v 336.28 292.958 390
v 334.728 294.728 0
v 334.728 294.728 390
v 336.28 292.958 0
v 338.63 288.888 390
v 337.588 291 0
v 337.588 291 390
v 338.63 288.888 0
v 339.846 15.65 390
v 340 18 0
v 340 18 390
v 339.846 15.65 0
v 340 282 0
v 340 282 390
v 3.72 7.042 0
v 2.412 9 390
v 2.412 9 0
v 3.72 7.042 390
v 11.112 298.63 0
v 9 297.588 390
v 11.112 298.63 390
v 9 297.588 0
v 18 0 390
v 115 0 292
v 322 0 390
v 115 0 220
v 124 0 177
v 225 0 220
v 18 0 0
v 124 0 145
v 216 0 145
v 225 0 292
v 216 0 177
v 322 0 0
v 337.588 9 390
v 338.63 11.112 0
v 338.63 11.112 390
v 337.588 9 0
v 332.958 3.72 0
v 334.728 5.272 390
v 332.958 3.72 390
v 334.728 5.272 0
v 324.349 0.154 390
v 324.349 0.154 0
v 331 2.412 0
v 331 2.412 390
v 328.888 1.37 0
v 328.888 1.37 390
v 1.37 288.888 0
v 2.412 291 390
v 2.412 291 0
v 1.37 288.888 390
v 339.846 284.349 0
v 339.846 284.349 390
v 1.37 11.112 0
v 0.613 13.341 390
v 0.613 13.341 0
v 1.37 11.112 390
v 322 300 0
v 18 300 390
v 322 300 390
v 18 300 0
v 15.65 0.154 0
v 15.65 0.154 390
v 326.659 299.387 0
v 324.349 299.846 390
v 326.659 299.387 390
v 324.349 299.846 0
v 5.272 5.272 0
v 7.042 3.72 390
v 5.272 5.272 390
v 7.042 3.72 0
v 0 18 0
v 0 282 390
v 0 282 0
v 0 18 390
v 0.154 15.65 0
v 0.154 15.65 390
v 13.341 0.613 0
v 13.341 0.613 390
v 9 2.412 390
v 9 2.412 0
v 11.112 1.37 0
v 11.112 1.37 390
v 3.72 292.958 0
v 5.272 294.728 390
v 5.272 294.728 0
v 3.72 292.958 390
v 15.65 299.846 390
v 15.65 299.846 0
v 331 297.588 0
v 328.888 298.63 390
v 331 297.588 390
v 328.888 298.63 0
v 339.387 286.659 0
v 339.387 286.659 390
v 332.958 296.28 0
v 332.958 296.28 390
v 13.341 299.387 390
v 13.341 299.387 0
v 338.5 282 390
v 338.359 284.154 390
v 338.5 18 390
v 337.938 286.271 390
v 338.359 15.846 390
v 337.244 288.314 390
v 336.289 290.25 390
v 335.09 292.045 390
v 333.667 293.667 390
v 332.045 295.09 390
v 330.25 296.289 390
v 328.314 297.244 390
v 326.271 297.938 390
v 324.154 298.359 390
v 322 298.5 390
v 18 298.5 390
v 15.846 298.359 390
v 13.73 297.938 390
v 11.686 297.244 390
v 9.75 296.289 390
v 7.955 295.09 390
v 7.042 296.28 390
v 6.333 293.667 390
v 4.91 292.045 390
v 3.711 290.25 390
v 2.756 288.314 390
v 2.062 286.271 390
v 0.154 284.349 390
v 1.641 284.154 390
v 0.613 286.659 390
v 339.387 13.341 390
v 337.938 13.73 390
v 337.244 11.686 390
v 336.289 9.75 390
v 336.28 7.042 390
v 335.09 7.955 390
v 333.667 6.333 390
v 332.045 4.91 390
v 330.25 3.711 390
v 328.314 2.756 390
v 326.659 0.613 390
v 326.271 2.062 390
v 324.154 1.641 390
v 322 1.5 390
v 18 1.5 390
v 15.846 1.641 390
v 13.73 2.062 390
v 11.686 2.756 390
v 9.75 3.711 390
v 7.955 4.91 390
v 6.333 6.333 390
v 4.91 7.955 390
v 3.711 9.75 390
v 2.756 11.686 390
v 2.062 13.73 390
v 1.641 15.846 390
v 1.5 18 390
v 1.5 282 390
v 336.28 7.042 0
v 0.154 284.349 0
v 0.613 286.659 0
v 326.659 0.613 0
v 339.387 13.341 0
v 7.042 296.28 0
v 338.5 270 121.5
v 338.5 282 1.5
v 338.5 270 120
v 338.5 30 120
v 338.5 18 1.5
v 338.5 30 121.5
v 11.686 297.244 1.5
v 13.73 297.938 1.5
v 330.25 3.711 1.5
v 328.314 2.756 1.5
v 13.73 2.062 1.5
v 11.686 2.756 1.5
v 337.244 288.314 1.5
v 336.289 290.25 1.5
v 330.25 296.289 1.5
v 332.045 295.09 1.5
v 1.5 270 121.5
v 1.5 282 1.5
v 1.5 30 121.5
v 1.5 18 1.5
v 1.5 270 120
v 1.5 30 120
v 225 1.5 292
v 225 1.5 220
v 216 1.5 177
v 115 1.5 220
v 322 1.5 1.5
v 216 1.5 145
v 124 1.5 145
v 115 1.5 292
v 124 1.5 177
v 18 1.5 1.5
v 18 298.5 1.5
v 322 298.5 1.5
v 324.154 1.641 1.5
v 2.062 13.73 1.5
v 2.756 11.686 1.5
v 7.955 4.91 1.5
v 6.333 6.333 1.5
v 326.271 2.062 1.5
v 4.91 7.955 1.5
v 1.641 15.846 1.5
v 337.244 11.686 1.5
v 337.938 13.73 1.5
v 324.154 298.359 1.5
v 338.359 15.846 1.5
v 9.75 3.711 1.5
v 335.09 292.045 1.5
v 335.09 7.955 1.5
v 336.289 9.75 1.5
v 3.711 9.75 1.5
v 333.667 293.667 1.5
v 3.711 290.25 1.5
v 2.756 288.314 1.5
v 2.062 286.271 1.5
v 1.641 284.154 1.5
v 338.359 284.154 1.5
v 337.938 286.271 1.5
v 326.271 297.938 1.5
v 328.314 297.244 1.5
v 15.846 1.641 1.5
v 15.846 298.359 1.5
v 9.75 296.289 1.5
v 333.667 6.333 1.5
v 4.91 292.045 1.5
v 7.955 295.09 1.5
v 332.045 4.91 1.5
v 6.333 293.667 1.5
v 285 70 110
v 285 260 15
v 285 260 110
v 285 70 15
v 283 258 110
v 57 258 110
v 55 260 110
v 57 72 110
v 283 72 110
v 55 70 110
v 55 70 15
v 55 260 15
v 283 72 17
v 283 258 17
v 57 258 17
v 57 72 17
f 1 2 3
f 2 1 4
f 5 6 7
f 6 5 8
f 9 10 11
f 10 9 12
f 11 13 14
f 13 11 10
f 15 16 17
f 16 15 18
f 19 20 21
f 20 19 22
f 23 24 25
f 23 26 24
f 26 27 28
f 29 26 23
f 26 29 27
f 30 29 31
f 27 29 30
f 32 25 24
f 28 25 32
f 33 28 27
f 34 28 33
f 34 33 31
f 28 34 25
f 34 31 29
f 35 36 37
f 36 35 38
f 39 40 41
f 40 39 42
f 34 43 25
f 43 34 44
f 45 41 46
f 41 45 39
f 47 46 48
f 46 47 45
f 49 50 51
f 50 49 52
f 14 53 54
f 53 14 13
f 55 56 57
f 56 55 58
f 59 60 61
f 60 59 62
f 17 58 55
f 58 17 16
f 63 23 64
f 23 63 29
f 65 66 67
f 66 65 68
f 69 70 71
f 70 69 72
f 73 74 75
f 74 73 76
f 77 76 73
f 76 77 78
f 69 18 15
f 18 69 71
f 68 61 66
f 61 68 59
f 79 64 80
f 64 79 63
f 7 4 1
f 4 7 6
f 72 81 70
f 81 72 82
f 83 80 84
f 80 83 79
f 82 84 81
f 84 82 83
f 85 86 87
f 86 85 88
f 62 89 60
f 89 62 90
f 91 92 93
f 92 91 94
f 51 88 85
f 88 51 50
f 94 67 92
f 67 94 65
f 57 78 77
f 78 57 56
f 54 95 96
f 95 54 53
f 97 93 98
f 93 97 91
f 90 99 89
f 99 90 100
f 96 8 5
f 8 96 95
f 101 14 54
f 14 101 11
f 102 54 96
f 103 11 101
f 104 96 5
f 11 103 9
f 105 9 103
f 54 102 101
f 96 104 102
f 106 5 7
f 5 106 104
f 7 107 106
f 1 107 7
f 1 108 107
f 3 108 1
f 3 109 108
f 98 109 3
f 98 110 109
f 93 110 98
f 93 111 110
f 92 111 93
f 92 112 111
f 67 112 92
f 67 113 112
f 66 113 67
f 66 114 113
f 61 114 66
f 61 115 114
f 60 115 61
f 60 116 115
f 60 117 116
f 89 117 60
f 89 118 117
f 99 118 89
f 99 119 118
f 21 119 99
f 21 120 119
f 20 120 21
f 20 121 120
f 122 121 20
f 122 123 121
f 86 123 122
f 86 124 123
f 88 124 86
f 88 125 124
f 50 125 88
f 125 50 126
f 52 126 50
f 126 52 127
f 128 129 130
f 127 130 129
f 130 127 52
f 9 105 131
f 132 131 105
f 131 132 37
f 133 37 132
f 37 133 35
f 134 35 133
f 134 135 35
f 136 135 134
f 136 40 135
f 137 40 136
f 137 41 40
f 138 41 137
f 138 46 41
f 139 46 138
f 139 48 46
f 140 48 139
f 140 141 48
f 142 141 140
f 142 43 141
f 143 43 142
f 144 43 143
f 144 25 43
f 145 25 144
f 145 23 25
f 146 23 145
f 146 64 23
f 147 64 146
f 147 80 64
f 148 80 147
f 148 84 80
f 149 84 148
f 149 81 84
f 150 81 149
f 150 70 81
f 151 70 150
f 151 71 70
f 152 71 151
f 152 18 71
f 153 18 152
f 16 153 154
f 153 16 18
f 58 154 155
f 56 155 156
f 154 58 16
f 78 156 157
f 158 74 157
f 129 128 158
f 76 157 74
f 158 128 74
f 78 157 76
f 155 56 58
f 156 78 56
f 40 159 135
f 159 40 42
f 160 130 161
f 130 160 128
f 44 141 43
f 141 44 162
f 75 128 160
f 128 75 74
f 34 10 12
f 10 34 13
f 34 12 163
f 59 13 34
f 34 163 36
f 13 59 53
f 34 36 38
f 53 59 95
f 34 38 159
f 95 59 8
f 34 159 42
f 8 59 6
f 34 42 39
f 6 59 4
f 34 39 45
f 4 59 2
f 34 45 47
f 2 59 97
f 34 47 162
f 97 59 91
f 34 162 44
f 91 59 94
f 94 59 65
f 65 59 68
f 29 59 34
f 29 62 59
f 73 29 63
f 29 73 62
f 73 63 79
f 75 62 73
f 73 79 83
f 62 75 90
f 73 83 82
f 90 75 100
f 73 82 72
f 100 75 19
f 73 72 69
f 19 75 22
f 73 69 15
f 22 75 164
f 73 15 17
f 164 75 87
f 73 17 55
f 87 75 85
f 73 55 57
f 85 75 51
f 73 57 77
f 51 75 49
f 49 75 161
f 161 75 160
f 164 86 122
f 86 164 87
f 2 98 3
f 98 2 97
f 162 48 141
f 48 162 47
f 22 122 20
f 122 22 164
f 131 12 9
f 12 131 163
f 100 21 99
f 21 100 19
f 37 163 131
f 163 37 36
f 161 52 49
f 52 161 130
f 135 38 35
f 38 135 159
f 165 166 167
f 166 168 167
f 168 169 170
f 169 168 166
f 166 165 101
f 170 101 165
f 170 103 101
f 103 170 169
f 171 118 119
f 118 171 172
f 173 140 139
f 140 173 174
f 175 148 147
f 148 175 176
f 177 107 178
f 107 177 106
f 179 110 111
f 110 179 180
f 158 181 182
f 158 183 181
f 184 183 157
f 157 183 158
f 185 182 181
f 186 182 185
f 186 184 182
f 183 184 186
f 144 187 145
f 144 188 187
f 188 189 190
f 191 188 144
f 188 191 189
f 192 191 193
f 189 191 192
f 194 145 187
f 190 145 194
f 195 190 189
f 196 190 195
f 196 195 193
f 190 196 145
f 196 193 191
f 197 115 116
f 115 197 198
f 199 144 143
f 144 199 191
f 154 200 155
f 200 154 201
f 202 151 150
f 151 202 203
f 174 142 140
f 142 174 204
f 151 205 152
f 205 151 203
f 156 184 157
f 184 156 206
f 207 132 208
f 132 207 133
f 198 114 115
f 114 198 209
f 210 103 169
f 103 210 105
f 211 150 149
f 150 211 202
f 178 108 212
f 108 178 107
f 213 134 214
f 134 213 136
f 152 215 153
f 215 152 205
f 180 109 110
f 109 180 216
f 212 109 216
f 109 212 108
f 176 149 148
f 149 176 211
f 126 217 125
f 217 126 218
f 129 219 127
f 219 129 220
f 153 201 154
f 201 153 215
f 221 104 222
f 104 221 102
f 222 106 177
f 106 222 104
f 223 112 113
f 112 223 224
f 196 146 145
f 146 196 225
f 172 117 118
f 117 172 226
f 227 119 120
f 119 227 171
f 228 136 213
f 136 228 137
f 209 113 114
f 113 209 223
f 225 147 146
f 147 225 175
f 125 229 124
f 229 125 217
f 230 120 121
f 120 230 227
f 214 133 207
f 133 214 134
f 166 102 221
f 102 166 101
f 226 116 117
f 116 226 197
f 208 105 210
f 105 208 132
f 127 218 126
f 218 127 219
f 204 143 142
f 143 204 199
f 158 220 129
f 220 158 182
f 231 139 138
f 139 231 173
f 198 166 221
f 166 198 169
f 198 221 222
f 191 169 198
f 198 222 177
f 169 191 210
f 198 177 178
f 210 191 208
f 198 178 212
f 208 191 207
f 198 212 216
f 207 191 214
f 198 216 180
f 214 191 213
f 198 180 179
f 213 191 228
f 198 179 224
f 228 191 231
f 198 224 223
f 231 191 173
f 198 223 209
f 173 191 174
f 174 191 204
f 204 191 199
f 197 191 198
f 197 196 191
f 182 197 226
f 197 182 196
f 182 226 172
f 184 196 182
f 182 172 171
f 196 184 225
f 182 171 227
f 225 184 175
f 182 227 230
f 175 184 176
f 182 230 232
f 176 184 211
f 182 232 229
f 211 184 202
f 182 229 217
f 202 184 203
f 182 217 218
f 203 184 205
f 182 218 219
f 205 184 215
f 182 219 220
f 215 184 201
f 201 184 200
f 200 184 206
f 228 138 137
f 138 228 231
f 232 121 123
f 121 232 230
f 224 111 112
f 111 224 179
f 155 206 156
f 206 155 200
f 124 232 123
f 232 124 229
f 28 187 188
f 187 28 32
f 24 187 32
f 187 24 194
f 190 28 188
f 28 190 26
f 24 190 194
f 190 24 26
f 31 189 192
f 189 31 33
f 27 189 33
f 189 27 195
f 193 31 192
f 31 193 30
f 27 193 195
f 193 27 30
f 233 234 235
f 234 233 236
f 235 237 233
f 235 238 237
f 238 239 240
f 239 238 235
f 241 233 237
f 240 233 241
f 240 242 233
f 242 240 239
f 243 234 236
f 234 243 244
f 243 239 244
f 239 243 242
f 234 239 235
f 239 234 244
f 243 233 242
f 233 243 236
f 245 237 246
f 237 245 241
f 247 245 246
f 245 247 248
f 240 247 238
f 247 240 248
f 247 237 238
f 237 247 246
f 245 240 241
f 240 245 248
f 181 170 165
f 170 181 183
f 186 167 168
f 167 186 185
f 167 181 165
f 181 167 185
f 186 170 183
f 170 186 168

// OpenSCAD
// PrintQuran v0.2 REFERENCE fit-study model — NOT tooling ready.
// Units: mm
$fn=48;
W=340; D=300; H=390; wall=1.5; corner=18;
slot_w=145; slot_h=10;
display_w=110; display_h=72;
printer_w=92; printer_h=32;

module rounded_box(w,d,h,r){
  hull(){ for(x=[r,w-r]) for(y=[r,d-r]) translate([x,y,0]) cylinder(h=h,r=r); }
}
module shell(){
 difference(){
  rounded_box(W,D,H,corner);
  translate([wall,wall,wall]) rounded_box(W-2*wall,D-2*wall,H-wall,corner-wall);
  // front display opening
  translate([(W-display_w)/2,-1,220]) cube([display_w,wall+3,display_h]);
  // printer exit
  translate([(W-printer_w)/2,-1,145]) cube([printer_w,wall+3,printer_h]);
  // top donation slot
  translate([(W-slot_w)/2,70,H-4]) cube([slot_w,slot_h,8]);
 }
}
module divider(){ translate([wall,30,120]) cube([W-2*wall,D-60,1.5]); }
module cash_vault(){
 translate([55,70,15]) difference(){ cube([230,190,95]); translate([2,2,2]) cube([226,186,95]); }
}
color("#171717") shell();
color("#777777") divider();
color("#444444") cash_vault();
